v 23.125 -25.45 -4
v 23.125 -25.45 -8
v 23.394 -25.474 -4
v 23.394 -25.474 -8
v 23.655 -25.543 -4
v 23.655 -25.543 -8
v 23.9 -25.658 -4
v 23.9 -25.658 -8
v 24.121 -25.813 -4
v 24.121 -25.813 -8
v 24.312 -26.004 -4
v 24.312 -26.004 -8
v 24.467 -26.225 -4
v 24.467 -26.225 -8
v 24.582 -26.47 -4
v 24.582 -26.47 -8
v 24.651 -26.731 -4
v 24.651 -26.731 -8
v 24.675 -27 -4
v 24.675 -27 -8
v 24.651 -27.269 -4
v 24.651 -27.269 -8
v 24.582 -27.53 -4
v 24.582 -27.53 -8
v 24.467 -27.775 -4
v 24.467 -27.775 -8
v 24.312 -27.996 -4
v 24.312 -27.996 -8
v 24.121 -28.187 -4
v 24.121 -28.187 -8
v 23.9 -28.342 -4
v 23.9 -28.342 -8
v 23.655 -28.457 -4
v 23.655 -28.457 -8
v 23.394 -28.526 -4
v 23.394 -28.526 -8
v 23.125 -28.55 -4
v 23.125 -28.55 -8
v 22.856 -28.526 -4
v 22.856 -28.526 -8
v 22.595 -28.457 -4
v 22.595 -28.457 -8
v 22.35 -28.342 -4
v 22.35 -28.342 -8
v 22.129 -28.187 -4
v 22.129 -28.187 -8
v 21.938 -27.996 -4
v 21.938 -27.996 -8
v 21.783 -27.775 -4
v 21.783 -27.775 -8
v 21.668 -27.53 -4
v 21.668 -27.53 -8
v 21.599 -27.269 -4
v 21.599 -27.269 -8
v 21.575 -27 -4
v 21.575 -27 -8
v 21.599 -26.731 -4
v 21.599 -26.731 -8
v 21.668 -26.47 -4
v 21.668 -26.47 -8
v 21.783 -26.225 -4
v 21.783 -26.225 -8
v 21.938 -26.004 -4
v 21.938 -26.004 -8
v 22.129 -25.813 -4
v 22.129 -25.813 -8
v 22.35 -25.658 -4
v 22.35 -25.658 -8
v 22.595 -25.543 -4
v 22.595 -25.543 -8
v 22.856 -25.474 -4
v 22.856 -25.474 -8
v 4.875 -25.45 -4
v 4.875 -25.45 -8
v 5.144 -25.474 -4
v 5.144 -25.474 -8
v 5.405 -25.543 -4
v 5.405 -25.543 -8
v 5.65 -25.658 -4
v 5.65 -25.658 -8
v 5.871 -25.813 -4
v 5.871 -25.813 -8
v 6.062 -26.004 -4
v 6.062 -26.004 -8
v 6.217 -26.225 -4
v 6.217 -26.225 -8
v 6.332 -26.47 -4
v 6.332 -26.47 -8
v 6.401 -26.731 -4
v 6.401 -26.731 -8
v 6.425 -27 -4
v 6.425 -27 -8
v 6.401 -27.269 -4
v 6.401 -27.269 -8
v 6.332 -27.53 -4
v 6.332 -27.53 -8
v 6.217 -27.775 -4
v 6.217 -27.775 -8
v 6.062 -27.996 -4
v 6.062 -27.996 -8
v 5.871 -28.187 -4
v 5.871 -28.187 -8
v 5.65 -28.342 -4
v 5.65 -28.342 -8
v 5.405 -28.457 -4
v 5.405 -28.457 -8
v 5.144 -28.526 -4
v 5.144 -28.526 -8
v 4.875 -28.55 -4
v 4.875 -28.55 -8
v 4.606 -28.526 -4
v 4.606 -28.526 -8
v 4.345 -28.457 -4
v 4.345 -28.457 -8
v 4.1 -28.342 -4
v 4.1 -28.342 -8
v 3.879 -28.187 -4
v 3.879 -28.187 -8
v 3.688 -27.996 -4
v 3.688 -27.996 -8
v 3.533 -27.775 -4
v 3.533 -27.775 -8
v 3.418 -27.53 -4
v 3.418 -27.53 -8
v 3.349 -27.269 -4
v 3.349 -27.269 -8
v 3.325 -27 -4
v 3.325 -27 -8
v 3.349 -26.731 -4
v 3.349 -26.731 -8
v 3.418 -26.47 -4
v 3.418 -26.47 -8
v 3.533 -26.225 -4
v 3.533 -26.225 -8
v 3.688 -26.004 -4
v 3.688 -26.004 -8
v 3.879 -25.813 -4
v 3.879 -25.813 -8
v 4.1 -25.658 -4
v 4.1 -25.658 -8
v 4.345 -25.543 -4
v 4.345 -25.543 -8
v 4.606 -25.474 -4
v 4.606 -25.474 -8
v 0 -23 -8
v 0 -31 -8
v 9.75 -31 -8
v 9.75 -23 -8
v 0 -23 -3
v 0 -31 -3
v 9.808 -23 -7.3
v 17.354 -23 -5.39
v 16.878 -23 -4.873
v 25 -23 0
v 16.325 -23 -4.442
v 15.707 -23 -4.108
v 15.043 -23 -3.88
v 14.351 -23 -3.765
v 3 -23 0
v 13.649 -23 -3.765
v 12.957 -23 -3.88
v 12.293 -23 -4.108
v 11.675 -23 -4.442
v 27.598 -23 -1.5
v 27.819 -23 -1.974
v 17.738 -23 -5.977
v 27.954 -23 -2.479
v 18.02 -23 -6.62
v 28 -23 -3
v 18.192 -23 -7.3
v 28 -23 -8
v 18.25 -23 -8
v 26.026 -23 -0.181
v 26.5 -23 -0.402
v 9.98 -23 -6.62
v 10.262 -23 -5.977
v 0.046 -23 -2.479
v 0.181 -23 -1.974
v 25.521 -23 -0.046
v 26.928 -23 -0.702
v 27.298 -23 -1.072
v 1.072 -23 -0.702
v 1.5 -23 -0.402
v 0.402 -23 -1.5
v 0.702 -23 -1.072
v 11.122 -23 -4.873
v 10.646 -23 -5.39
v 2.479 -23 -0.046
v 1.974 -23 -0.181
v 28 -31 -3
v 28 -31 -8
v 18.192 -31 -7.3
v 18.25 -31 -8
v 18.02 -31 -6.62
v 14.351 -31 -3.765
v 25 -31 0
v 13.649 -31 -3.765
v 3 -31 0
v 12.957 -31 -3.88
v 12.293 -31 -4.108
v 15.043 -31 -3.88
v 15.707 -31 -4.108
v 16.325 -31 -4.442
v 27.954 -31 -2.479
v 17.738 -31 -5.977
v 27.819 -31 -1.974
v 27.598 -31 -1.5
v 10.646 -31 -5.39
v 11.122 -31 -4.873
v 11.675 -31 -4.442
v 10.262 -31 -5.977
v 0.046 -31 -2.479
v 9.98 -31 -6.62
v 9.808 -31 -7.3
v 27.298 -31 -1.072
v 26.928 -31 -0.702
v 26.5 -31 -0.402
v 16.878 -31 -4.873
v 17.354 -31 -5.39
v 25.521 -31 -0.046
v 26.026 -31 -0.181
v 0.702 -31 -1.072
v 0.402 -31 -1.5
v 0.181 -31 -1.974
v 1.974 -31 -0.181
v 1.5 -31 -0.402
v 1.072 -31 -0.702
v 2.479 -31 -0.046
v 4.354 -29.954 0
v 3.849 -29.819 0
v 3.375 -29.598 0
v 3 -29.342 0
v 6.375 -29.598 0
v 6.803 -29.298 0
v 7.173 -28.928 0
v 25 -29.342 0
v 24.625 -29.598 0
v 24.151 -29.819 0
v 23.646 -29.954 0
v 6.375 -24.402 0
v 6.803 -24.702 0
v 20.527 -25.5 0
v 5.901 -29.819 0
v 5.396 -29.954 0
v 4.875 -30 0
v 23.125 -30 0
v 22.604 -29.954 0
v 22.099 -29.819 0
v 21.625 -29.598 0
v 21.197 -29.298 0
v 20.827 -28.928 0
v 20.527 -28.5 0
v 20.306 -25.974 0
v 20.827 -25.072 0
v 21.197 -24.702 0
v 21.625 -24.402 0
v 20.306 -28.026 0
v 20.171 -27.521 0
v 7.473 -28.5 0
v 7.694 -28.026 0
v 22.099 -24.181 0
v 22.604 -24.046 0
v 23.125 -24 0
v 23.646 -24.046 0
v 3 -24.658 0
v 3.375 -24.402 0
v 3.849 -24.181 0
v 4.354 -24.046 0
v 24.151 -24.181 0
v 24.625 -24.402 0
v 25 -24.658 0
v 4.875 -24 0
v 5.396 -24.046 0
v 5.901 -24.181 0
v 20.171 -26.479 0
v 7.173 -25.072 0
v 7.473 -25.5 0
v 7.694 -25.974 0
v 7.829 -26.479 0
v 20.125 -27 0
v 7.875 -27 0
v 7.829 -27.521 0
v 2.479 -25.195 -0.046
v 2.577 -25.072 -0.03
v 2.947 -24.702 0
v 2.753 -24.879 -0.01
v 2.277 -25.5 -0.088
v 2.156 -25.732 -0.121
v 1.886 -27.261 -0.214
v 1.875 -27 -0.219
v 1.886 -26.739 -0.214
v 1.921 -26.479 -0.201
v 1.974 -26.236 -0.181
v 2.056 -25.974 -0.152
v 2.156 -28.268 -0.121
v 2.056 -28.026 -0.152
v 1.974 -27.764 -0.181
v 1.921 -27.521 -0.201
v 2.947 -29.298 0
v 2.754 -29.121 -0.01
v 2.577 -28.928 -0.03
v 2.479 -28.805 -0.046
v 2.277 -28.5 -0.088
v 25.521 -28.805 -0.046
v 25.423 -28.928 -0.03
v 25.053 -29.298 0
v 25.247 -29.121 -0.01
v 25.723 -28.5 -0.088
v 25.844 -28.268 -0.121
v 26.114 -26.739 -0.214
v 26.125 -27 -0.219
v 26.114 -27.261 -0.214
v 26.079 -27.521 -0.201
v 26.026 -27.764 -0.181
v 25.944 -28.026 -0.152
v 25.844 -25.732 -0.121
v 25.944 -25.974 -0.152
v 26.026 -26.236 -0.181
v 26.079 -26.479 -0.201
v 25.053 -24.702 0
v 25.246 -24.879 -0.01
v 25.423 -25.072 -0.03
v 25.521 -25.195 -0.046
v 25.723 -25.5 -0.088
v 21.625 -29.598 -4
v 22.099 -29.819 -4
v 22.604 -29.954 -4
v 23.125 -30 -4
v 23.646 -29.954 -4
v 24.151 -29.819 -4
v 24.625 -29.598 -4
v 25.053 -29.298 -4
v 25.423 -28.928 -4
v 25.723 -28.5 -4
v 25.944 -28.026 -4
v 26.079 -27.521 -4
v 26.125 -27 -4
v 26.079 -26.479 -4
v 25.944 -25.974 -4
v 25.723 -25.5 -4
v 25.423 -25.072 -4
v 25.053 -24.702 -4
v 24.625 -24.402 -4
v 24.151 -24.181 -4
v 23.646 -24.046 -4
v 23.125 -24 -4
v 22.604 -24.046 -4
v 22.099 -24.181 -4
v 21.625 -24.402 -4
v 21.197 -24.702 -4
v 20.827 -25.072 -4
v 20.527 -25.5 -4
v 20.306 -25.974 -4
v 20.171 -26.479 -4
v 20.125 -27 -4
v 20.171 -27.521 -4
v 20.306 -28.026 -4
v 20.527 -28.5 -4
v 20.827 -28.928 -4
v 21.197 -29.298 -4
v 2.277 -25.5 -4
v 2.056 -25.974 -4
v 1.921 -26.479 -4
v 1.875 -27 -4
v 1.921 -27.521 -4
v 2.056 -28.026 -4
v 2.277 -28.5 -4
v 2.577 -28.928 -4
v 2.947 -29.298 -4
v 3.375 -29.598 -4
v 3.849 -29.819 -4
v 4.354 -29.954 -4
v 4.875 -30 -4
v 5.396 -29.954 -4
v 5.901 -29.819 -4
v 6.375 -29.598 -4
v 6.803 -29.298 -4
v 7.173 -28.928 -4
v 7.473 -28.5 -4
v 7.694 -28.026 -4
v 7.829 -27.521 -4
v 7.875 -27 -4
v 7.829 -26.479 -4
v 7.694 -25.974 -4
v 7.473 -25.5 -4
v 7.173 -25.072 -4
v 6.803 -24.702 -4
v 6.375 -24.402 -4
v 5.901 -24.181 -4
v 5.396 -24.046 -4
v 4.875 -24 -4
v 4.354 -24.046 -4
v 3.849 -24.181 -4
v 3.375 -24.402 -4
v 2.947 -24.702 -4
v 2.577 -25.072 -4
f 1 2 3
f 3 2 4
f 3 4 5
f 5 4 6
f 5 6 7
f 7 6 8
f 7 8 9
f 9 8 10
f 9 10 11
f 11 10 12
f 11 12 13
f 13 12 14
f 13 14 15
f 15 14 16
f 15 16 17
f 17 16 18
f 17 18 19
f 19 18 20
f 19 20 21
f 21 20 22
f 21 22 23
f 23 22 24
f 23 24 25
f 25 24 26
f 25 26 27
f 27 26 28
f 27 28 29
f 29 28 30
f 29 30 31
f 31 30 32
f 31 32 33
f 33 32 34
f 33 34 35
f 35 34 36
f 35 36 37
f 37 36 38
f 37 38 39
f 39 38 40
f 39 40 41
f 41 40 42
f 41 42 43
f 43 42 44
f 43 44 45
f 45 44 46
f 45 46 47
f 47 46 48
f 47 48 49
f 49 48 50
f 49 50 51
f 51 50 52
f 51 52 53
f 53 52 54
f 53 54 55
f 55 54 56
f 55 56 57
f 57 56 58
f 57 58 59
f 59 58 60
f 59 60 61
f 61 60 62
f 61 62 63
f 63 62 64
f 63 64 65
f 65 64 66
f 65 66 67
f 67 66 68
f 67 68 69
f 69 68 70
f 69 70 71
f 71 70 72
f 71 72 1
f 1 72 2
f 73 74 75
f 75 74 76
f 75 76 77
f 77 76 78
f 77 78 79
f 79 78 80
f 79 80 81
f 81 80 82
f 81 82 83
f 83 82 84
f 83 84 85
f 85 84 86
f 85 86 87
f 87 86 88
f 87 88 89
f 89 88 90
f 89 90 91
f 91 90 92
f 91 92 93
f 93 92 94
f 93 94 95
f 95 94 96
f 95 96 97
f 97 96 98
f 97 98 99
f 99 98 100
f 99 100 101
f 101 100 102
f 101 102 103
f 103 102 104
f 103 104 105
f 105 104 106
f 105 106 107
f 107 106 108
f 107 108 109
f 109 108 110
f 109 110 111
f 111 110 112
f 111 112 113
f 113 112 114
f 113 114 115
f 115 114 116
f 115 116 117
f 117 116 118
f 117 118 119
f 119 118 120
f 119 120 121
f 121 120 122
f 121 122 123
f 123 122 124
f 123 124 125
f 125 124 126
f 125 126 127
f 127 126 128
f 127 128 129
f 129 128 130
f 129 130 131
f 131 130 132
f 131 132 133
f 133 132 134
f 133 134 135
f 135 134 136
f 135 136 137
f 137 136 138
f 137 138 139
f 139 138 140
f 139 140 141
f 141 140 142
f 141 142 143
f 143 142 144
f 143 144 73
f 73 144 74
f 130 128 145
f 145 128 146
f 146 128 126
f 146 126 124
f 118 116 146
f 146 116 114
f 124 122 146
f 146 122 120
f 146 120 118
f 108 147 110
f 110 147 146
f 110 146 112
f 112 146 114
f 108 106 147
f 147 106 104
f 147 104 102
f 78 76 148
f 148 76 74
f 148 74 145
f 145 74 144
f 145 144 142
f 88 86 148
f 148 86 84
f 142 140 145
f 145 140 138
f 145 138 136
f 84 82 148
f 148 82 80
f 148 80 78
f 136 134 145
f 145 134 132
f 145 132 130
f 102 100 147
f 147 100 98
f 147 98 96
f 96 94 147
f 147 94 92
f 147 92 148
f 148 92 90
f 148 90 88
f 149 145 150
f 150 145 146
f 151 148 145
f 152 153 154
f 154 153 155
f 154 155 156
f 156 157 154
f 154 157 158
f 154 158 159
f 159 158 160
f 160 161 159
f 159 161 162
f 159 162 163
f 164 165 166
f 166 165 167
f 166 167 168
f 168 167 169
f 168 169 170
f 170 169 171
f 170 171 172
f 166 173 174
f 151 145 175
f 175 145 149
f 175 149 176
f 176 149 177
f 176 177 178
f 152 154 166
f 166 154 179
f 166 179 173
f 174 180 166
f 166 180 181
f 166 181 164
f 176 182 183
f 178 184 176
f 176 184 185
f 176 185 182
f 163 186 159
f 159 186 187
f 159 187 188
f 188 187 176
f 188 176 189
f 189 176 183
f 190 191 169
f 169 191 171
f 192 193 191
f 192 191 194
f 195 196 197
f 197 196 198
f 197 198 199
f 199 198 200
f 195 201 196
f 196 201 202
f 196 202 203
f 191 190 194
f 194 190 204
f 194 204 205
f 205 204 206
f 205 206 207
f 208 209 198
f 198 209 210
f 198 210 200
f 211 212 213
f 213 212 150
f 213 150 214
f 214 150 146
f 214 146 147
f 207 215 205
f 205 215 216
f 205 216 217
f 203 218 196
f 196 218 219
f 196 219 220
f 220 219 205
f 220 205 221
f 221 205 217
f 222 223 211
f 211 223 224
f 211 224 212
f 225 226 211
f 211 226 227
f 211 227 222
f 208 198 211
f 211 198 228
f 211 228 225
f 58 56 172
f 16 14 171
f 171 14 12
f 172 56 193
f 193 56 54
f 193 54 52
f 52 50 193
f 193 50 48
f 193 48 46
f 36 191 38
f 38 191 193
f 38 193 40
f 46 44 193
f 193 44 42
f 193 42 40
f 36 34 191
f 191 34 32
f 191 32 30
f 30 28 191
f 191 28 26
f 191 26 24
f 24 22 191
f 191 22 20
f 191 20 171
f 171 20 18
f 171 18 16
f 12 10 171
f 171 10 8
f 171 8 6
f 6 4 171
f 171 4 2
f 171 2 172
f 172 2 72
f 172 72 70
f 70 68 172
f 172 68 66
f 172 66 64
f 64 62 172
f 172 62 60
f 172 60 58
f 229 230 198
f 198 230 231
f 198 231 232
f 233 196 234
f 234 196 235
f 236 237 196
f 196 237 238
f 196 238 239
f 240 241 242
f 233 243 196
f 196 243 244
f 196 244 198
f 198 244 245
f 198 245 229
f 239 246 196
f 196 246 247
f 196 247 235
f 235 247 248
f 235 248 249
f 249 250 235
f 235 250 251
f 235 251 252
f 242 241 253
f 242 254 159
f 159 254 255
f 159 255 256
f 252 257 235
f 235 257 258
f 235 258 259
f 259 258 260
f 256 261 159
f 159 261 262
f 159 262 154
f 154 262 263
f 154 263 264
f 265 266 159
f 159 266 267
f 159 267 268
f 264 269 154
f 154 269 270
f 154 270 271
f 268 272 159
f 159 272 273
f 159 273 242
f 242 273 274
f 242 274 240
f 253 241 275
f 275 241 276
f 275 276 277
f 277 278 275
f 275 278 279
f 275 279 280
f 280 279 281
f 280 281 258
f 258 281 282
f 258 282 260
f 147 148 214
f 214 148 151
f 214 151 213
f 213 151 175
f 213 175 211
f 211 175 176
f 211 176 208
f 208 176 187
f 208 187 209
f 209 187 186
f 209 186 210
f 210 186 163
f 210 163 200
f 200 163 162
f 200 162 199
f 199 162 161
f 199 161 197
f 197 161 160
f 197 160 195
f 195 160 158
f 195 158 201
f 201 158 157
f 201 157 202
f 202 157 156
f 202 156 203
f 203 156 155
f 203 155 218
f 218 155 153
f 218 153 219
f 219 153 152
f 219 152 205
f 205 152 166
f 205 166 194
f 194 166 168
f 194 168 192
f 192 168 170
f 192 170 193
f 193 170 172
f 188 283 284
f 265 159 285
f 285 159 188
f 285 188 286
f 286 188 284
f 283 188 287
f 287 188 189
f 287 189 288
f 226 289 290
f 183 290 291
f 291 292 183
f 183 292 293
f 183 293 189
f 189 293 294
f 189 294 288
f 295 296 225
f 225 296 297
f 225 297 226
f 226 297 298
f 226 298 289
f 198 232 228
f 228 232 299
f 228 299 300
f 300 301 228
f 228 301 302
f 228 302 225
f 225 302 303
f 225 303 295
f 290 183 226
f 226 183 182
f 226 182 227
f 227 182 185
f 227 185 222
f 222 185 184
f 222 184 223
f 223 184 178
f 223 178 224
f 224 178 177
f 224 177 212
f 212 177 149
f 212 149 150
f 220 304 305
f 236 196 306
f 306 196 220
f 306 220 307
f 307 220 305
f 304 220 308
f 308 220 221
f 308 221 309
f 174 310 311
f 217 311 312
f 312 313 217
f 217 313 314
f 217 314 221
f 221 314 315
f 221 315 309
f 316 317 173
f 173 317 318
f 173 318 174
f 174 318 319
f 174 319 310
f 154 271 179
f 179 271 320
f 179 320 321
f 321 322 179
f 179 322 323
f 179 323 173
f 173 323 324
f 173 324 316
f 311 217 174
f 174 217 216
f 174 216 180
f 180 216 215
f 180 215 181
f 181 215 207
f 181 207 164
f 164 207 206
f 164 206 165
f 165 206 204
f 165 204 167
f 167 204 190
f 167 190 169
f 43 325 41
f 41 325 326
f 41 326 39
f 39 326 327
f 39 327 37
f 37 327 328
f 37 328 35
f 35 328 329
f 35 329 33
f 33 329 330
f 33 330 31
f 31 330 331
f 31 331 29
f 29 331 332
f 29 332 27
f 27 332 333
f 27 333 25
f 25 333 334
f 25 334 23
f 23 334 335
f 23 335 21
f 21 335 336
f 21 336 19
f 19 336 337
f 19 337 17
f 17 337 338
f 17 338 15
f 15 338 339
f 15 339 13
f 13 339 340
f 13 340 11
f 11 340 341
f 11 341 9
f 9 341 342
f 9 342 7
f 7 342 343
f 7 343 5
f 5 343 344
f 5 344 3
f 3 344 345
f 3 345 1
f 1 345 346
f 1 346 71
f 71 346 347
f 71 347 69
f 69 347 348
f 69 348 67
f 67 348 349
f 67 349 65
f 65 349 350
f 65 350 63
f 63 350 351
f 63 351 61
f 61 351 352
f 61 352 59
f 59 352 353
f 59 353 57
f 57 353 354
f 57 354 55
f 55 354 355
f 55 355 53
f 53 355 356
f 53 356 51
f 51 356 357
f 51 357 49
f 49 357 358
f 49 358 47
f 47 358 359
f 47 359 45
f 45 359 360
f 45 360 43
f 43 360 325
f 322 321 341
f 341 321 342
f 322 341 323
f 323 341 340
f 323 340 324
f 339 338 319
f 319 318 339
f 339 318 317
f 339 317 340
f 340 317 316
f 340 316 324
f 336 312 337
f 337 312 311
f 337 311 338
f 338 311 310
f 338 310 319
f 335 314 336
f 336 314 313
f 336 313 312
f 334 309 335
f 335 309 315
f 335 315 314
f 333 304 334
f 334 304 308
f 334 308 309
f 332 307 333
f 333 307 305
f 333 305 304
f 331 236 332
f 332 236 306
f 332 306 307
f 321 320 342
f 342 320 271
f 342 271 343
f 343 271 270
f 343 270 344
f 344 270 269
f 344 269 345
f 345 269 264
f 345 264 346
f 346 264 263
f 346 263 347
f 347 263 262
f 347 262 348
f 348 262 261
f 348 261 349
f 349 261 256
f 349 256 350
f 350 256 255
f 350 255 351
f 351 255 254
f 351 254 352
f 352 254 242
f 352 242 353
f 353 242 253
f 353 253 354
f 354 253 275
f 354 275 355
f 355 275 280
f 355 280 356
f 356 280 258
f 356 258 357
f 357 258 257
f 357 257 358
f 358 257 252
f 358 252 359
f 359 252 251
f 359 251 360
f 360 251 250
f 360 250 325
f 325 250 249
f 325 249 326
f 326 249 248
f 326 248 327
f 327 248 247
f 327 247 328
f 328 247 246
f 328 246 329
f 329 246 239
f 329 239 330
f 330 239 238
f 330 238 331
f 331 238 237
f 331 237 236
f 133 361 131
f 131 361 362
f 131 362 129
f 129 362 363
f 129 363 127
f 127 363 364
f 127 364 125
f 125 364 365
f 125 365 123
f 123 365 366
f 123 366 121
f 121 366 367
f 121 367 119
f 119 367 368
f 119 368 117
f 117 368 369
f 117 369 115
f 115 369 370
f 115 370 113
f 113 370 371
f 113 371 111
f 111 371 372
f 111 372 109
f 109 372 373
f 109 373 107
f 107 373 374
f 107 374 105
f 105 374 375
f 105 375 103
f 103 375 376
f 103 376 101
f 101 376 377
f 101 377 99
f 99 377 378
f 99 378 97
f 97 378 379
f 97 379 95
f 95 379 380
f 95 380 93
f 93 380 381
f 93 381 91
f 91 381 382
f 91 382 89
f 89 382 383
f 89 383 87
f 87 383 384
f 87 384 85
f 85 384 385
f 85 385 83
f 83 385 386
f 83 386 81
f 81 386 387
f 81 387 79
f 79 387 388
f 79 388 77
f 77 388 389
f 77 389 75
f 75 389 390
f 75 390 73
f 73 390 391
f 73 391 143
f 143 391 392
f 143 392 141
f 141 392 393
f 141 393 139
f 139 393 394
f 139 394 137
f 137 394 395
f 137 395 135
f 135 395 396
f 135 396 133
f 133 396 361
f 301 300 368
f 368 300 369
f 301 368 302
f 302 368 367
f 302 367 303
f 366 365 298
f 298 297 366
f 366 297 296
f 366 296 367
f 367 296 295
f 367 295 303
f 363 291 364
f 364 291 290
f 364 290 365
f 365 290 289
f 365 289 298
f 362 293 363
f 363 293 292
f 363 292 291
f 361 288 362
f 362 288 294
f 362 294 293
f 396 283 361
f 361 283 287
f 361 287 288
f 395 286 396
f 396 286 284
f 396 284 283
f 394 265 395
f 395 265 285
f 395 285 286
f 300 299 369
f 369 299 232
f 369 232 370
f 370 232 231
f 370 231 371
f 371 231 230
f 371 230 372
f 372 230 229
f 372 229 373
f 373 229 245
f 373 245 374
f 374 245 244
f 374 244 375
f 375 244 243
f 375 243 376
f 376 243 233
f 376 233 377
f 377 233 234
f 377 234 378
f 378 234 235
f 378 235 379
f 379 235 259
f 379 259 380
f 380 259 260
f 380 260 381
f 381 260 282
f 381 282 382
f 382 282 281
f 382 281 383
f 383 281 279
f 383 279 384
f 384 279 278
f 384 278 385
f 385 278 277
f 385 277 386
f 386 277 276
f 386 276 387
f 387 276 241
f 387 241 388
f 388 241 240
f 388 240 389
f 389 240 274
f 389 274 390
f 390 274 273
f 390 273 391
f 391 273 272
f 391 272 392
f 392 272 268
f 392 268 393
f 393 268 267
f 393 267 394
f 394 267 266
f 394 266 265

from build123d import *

# Parameters (mm, degrees)
SKETCH2_W                          = 28
SKETCH2_H                          = 8
BRIDGEBOSS_EXTRUDE2_DEPTH          = 8
GROMMETCUT_EXTRUDE3_DEPTH          = 31.199337741
BRIDGEMOUNTHOLESSKETCH4_R          = 1.55
BRIDGEMOUNTHOLESCUT_EXTRUDE4_DEPTH = 43.532340636
FILLET1_R                          = 3
SKETCH4_R                          = 3
MOUNTHOLESBORECUT_EXTRUDE1_DEPTH   = 4


with BuildPart() as part:
    # Sketch2 → BridgeBoss-Extrude2 (new body)
    with BuildSketch(Plane(origin=(0, 0, 0), x_dir=(1, 0, 0), z_dir=(0, 0, -1))):
        with Locations((14, 27)):
            Rectangle(SKETCH2_W, SKETCH2_H)
    extrude(amount=BRIDGEBOSS_EXTRUDE2_DEPTH)

    # Sketch3 → GrommetCut-Extrude3 (cut, through all)
    with BuildSketch(Plane(origin=(0, -23, 0), x_dir=(1, 0, 0), z_dir=(0, 1, 0))):
        with BuildLine():
            Line((9.75, 8), (18.25, 8))
            ThreePointArc((18.25, 8), (14, 3.75), (9.75, 8))
        make_face()
    extrude(amount=-GROMMETCUT_EXTRUDE3_DEPTH, mode=Mode.SUBTRACT)

    # BridgeMountHolesSketch4 → BridgeMountholesCut-Extrude4 (cut, through all)
    with BuildSketch(Plane(origin=(0, 0, -8), x_dir=(1, 0, 0), z_dir=(0, 0, -1))):
        with Locations(Location((4.875, 27, 0), (0, 0, 270))):
            Circle(BRIDGEMOUNTHOLESSKETCH4_R)
        with Locations(Location((23.125, 27, 0), (0, 0, 270))):
            Circle(BRIDGEMOUNTHOLESSKETCH4_R)
    extrude(amount=-BRIDGEMOUNTHOLESCUT_EXTRUDE4_DEPTH, mode=Mode.SUBTRACT)

    # Fillet1
    fillet1_edges = [part.edges().sort_by_distance(p)[0] for p in [
        (28, -27, 0),
        (0, -27, 0),
    ]]
    fillet(fillet1_edges, radius=FILLET1_R)

    # Sketch4 → MountHolesBoreCut-Extrude1 (cut)
    with BuildSketch(Plane.XY):
        with Locations((4.875, -27)):
            Circle(SKETCH4_R)
        with Locations((23.125, -27)):
            Circle(SKETCH4_R)
    extrude(amount=-MOUNTHOLESBORECUT_EXTRUDE1_DEPTH, mode=Mode.SUBTRACT)


solid = part.part
